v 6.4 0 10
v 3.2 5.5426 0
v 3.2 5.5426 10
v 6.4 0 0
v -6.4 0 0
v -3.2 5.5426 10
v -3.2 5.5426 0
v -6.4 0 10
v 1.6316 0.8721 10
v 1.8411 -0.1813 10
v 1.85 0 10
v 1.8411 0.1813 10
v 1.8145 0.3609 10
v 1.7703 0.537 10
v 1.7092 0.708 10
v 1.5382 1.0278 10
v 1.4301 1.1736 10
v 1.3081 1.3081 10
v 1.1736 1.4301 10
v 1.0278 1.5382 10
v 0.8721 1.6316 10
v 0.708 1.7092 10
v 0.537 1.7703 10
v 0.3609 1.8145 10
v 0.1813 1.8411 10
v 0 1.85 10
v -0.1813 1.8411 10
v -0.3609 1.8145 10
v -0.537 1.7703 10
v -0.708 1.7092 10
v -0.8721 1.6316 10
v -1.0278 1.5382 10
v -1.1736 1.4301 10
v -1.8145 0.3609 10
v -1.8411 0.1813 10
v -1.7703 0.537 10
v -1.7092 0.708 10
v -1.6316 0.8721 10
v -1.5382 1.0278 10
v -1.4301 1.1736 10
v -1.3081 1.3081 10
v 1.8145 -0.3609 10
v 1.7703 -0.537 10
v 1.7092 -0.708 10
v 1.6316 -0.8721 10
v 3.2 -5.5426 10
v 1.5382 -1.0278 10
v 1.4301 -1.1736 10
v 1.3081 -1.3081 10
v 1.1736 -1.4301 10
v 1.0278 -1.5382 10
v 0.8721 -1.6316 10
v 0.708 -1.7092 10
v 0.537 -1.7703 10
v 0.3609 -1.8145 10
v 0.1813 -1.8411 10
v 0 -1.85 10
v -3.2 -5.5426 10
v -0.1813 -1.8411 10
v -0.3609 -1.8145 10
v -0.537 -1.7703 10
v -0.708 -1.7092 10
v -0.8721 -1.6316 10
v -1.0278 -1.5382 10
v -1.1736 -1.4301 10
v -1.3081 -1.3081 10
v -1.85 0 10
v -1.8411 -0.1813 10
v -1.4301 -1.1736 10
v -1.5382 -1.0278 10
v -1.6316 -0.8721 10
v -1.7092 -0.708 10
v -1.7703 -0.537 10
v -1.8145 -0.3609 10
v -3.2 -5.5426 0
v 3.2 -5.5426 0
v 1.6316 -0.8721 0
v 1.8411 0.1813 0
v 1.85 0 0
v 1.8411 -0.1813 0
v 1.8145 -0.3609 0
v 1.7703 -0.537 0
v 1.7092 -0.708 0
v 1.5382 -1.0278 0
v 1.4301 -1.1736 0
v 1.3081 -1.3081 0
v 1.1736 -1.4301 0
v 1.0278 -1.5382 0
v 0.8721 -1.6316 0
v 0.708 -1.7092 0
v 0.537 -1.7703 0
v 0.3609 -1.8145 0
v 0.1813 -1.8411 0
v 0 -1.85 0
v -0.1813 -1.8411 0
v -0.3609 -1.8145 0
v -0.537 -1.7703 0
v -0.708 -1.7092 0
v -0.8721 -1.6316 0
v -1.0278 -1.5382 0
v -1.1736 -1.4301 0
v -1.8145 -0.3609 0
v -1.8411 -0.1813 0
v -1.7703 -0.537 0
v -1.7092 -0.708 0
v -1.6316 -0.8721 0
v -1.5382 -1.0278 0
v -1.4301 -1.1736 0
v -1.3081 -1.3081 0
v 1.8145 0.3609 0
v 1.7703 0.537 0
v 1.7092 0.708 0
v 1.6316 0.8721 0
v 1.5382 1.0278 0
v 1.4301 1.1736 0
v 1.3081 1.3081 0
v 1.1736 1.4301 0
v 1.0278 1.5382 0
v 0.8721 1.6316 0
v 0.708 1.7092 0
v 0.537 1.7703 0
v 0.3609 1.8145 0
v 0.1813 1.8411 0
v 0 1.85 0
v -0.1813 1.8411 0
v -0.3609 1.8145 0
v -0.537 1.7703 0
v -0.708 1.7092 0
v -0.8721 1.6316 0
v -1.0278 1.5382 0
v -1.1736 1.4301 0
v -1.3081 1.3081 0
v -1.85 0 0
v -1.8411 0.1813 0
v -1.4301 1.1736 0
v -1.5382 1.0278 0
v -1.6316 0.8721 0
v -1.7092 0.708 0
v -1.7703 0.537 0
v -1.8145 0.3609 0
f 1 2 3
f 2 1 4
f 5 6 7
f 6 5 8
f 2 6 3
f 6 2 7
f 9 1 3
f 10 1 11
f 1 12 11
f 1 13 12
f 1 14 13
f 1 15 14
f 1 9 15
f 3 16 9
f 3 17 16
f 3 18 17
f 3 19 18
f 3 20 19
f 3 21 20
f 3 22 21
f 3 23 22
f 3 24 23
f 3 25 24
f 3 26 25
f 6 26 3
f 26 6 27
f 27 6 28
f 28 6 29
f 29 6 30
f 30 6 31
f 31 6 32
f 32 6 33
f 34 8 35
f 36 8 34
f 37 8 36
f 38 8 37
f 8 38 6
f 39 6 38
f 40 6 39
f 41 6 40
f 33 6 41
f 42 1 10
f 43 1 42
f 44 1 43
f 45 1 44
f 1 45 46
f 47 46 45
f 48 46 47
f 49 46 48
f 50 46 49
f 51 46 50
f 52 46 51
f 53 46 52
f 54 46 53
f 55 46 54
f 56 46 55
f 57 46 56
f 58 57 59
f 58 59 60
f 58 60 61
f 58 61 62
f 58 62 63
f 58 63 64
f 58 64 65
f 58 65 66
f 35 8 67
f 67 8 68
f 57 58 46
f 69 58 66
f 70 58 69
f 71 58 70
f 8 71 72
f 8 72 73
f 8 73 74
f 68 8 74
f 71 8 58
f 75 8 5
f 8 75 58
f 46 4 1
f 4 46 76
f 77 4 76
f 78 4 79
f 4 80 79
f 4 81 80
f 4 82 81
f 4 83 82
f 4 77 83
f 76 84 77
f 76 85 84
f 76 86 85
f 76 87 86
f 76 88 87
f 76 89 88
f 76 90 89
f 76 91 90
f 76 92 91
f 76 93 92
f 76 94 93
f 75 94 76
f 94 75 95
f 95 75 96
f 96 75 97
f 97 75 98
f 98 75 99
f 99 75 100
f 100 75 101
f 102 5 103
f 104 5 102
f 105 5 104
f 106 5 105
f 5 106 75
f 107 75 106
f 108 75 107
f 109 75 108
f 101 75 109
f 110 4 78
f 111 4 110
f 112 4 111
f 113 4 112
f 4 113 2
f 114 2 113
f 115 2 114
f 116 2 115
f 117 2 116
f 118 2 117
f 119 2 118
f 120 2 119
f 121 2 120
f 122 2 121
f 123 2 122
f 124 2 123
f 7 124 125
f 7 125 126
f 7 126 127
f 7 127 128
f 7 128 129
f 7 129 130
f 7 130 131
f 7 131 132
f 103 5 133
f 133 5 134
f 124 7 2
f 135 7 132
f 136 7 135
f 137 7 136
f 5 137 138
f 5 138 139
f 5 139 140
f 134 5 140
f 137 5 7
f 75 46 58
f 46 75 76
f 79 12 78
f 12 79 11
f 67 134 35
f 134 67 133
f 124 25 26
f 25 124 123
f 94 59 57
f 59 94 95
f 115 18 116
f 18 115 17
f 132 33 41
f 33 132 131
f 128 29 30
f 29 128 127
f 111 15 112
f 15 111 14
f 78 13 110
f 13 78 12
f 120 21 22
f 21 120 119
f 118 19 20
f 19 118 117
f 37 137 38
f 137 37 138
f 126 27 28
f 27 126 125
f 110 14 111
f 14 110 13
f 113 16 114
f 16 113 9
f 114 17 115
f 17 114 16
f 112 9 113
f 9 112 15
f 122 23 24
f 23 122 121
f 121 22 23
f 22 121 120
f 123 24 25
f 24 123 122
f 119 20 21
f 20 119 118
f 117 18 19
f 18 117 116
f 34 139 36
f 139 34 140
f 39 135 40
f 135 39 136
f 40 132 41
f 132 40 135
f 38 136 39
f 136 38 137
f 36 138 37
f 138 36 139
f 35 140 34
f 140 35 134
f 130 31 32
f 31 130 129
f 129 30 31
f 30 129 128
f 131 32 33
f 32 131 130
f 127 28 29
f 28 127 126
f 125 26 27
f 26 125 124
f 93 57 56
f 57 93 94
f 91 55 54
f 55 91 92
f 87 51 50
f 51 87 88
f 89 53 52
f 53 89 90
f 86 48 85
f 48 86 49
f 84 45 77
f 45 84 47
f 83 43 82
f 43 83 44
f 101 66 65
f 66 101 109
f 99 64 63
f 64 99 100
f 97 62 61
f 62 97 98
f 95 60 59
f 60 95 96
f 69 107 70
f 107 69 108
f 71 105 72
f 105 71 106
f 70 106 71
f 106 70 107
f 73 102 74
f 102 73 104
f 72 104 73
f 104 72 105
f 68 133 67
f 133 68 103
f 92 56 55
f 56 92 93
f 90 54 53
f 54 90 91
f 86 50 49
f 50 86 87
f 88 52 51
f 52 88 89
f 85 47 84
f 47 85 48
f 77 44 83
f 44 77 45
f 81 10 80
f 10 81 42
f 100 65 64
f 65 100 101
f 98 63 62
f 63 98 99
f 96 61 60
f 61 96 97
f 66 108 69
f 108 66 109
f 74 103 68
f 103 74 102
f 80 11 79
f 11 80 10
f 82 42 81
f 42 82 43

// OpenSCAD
difference() {
cylinder(r=6.4, h=10, $fn=6);
cylinder(r=1.85, h=10, $fn=64);
}
